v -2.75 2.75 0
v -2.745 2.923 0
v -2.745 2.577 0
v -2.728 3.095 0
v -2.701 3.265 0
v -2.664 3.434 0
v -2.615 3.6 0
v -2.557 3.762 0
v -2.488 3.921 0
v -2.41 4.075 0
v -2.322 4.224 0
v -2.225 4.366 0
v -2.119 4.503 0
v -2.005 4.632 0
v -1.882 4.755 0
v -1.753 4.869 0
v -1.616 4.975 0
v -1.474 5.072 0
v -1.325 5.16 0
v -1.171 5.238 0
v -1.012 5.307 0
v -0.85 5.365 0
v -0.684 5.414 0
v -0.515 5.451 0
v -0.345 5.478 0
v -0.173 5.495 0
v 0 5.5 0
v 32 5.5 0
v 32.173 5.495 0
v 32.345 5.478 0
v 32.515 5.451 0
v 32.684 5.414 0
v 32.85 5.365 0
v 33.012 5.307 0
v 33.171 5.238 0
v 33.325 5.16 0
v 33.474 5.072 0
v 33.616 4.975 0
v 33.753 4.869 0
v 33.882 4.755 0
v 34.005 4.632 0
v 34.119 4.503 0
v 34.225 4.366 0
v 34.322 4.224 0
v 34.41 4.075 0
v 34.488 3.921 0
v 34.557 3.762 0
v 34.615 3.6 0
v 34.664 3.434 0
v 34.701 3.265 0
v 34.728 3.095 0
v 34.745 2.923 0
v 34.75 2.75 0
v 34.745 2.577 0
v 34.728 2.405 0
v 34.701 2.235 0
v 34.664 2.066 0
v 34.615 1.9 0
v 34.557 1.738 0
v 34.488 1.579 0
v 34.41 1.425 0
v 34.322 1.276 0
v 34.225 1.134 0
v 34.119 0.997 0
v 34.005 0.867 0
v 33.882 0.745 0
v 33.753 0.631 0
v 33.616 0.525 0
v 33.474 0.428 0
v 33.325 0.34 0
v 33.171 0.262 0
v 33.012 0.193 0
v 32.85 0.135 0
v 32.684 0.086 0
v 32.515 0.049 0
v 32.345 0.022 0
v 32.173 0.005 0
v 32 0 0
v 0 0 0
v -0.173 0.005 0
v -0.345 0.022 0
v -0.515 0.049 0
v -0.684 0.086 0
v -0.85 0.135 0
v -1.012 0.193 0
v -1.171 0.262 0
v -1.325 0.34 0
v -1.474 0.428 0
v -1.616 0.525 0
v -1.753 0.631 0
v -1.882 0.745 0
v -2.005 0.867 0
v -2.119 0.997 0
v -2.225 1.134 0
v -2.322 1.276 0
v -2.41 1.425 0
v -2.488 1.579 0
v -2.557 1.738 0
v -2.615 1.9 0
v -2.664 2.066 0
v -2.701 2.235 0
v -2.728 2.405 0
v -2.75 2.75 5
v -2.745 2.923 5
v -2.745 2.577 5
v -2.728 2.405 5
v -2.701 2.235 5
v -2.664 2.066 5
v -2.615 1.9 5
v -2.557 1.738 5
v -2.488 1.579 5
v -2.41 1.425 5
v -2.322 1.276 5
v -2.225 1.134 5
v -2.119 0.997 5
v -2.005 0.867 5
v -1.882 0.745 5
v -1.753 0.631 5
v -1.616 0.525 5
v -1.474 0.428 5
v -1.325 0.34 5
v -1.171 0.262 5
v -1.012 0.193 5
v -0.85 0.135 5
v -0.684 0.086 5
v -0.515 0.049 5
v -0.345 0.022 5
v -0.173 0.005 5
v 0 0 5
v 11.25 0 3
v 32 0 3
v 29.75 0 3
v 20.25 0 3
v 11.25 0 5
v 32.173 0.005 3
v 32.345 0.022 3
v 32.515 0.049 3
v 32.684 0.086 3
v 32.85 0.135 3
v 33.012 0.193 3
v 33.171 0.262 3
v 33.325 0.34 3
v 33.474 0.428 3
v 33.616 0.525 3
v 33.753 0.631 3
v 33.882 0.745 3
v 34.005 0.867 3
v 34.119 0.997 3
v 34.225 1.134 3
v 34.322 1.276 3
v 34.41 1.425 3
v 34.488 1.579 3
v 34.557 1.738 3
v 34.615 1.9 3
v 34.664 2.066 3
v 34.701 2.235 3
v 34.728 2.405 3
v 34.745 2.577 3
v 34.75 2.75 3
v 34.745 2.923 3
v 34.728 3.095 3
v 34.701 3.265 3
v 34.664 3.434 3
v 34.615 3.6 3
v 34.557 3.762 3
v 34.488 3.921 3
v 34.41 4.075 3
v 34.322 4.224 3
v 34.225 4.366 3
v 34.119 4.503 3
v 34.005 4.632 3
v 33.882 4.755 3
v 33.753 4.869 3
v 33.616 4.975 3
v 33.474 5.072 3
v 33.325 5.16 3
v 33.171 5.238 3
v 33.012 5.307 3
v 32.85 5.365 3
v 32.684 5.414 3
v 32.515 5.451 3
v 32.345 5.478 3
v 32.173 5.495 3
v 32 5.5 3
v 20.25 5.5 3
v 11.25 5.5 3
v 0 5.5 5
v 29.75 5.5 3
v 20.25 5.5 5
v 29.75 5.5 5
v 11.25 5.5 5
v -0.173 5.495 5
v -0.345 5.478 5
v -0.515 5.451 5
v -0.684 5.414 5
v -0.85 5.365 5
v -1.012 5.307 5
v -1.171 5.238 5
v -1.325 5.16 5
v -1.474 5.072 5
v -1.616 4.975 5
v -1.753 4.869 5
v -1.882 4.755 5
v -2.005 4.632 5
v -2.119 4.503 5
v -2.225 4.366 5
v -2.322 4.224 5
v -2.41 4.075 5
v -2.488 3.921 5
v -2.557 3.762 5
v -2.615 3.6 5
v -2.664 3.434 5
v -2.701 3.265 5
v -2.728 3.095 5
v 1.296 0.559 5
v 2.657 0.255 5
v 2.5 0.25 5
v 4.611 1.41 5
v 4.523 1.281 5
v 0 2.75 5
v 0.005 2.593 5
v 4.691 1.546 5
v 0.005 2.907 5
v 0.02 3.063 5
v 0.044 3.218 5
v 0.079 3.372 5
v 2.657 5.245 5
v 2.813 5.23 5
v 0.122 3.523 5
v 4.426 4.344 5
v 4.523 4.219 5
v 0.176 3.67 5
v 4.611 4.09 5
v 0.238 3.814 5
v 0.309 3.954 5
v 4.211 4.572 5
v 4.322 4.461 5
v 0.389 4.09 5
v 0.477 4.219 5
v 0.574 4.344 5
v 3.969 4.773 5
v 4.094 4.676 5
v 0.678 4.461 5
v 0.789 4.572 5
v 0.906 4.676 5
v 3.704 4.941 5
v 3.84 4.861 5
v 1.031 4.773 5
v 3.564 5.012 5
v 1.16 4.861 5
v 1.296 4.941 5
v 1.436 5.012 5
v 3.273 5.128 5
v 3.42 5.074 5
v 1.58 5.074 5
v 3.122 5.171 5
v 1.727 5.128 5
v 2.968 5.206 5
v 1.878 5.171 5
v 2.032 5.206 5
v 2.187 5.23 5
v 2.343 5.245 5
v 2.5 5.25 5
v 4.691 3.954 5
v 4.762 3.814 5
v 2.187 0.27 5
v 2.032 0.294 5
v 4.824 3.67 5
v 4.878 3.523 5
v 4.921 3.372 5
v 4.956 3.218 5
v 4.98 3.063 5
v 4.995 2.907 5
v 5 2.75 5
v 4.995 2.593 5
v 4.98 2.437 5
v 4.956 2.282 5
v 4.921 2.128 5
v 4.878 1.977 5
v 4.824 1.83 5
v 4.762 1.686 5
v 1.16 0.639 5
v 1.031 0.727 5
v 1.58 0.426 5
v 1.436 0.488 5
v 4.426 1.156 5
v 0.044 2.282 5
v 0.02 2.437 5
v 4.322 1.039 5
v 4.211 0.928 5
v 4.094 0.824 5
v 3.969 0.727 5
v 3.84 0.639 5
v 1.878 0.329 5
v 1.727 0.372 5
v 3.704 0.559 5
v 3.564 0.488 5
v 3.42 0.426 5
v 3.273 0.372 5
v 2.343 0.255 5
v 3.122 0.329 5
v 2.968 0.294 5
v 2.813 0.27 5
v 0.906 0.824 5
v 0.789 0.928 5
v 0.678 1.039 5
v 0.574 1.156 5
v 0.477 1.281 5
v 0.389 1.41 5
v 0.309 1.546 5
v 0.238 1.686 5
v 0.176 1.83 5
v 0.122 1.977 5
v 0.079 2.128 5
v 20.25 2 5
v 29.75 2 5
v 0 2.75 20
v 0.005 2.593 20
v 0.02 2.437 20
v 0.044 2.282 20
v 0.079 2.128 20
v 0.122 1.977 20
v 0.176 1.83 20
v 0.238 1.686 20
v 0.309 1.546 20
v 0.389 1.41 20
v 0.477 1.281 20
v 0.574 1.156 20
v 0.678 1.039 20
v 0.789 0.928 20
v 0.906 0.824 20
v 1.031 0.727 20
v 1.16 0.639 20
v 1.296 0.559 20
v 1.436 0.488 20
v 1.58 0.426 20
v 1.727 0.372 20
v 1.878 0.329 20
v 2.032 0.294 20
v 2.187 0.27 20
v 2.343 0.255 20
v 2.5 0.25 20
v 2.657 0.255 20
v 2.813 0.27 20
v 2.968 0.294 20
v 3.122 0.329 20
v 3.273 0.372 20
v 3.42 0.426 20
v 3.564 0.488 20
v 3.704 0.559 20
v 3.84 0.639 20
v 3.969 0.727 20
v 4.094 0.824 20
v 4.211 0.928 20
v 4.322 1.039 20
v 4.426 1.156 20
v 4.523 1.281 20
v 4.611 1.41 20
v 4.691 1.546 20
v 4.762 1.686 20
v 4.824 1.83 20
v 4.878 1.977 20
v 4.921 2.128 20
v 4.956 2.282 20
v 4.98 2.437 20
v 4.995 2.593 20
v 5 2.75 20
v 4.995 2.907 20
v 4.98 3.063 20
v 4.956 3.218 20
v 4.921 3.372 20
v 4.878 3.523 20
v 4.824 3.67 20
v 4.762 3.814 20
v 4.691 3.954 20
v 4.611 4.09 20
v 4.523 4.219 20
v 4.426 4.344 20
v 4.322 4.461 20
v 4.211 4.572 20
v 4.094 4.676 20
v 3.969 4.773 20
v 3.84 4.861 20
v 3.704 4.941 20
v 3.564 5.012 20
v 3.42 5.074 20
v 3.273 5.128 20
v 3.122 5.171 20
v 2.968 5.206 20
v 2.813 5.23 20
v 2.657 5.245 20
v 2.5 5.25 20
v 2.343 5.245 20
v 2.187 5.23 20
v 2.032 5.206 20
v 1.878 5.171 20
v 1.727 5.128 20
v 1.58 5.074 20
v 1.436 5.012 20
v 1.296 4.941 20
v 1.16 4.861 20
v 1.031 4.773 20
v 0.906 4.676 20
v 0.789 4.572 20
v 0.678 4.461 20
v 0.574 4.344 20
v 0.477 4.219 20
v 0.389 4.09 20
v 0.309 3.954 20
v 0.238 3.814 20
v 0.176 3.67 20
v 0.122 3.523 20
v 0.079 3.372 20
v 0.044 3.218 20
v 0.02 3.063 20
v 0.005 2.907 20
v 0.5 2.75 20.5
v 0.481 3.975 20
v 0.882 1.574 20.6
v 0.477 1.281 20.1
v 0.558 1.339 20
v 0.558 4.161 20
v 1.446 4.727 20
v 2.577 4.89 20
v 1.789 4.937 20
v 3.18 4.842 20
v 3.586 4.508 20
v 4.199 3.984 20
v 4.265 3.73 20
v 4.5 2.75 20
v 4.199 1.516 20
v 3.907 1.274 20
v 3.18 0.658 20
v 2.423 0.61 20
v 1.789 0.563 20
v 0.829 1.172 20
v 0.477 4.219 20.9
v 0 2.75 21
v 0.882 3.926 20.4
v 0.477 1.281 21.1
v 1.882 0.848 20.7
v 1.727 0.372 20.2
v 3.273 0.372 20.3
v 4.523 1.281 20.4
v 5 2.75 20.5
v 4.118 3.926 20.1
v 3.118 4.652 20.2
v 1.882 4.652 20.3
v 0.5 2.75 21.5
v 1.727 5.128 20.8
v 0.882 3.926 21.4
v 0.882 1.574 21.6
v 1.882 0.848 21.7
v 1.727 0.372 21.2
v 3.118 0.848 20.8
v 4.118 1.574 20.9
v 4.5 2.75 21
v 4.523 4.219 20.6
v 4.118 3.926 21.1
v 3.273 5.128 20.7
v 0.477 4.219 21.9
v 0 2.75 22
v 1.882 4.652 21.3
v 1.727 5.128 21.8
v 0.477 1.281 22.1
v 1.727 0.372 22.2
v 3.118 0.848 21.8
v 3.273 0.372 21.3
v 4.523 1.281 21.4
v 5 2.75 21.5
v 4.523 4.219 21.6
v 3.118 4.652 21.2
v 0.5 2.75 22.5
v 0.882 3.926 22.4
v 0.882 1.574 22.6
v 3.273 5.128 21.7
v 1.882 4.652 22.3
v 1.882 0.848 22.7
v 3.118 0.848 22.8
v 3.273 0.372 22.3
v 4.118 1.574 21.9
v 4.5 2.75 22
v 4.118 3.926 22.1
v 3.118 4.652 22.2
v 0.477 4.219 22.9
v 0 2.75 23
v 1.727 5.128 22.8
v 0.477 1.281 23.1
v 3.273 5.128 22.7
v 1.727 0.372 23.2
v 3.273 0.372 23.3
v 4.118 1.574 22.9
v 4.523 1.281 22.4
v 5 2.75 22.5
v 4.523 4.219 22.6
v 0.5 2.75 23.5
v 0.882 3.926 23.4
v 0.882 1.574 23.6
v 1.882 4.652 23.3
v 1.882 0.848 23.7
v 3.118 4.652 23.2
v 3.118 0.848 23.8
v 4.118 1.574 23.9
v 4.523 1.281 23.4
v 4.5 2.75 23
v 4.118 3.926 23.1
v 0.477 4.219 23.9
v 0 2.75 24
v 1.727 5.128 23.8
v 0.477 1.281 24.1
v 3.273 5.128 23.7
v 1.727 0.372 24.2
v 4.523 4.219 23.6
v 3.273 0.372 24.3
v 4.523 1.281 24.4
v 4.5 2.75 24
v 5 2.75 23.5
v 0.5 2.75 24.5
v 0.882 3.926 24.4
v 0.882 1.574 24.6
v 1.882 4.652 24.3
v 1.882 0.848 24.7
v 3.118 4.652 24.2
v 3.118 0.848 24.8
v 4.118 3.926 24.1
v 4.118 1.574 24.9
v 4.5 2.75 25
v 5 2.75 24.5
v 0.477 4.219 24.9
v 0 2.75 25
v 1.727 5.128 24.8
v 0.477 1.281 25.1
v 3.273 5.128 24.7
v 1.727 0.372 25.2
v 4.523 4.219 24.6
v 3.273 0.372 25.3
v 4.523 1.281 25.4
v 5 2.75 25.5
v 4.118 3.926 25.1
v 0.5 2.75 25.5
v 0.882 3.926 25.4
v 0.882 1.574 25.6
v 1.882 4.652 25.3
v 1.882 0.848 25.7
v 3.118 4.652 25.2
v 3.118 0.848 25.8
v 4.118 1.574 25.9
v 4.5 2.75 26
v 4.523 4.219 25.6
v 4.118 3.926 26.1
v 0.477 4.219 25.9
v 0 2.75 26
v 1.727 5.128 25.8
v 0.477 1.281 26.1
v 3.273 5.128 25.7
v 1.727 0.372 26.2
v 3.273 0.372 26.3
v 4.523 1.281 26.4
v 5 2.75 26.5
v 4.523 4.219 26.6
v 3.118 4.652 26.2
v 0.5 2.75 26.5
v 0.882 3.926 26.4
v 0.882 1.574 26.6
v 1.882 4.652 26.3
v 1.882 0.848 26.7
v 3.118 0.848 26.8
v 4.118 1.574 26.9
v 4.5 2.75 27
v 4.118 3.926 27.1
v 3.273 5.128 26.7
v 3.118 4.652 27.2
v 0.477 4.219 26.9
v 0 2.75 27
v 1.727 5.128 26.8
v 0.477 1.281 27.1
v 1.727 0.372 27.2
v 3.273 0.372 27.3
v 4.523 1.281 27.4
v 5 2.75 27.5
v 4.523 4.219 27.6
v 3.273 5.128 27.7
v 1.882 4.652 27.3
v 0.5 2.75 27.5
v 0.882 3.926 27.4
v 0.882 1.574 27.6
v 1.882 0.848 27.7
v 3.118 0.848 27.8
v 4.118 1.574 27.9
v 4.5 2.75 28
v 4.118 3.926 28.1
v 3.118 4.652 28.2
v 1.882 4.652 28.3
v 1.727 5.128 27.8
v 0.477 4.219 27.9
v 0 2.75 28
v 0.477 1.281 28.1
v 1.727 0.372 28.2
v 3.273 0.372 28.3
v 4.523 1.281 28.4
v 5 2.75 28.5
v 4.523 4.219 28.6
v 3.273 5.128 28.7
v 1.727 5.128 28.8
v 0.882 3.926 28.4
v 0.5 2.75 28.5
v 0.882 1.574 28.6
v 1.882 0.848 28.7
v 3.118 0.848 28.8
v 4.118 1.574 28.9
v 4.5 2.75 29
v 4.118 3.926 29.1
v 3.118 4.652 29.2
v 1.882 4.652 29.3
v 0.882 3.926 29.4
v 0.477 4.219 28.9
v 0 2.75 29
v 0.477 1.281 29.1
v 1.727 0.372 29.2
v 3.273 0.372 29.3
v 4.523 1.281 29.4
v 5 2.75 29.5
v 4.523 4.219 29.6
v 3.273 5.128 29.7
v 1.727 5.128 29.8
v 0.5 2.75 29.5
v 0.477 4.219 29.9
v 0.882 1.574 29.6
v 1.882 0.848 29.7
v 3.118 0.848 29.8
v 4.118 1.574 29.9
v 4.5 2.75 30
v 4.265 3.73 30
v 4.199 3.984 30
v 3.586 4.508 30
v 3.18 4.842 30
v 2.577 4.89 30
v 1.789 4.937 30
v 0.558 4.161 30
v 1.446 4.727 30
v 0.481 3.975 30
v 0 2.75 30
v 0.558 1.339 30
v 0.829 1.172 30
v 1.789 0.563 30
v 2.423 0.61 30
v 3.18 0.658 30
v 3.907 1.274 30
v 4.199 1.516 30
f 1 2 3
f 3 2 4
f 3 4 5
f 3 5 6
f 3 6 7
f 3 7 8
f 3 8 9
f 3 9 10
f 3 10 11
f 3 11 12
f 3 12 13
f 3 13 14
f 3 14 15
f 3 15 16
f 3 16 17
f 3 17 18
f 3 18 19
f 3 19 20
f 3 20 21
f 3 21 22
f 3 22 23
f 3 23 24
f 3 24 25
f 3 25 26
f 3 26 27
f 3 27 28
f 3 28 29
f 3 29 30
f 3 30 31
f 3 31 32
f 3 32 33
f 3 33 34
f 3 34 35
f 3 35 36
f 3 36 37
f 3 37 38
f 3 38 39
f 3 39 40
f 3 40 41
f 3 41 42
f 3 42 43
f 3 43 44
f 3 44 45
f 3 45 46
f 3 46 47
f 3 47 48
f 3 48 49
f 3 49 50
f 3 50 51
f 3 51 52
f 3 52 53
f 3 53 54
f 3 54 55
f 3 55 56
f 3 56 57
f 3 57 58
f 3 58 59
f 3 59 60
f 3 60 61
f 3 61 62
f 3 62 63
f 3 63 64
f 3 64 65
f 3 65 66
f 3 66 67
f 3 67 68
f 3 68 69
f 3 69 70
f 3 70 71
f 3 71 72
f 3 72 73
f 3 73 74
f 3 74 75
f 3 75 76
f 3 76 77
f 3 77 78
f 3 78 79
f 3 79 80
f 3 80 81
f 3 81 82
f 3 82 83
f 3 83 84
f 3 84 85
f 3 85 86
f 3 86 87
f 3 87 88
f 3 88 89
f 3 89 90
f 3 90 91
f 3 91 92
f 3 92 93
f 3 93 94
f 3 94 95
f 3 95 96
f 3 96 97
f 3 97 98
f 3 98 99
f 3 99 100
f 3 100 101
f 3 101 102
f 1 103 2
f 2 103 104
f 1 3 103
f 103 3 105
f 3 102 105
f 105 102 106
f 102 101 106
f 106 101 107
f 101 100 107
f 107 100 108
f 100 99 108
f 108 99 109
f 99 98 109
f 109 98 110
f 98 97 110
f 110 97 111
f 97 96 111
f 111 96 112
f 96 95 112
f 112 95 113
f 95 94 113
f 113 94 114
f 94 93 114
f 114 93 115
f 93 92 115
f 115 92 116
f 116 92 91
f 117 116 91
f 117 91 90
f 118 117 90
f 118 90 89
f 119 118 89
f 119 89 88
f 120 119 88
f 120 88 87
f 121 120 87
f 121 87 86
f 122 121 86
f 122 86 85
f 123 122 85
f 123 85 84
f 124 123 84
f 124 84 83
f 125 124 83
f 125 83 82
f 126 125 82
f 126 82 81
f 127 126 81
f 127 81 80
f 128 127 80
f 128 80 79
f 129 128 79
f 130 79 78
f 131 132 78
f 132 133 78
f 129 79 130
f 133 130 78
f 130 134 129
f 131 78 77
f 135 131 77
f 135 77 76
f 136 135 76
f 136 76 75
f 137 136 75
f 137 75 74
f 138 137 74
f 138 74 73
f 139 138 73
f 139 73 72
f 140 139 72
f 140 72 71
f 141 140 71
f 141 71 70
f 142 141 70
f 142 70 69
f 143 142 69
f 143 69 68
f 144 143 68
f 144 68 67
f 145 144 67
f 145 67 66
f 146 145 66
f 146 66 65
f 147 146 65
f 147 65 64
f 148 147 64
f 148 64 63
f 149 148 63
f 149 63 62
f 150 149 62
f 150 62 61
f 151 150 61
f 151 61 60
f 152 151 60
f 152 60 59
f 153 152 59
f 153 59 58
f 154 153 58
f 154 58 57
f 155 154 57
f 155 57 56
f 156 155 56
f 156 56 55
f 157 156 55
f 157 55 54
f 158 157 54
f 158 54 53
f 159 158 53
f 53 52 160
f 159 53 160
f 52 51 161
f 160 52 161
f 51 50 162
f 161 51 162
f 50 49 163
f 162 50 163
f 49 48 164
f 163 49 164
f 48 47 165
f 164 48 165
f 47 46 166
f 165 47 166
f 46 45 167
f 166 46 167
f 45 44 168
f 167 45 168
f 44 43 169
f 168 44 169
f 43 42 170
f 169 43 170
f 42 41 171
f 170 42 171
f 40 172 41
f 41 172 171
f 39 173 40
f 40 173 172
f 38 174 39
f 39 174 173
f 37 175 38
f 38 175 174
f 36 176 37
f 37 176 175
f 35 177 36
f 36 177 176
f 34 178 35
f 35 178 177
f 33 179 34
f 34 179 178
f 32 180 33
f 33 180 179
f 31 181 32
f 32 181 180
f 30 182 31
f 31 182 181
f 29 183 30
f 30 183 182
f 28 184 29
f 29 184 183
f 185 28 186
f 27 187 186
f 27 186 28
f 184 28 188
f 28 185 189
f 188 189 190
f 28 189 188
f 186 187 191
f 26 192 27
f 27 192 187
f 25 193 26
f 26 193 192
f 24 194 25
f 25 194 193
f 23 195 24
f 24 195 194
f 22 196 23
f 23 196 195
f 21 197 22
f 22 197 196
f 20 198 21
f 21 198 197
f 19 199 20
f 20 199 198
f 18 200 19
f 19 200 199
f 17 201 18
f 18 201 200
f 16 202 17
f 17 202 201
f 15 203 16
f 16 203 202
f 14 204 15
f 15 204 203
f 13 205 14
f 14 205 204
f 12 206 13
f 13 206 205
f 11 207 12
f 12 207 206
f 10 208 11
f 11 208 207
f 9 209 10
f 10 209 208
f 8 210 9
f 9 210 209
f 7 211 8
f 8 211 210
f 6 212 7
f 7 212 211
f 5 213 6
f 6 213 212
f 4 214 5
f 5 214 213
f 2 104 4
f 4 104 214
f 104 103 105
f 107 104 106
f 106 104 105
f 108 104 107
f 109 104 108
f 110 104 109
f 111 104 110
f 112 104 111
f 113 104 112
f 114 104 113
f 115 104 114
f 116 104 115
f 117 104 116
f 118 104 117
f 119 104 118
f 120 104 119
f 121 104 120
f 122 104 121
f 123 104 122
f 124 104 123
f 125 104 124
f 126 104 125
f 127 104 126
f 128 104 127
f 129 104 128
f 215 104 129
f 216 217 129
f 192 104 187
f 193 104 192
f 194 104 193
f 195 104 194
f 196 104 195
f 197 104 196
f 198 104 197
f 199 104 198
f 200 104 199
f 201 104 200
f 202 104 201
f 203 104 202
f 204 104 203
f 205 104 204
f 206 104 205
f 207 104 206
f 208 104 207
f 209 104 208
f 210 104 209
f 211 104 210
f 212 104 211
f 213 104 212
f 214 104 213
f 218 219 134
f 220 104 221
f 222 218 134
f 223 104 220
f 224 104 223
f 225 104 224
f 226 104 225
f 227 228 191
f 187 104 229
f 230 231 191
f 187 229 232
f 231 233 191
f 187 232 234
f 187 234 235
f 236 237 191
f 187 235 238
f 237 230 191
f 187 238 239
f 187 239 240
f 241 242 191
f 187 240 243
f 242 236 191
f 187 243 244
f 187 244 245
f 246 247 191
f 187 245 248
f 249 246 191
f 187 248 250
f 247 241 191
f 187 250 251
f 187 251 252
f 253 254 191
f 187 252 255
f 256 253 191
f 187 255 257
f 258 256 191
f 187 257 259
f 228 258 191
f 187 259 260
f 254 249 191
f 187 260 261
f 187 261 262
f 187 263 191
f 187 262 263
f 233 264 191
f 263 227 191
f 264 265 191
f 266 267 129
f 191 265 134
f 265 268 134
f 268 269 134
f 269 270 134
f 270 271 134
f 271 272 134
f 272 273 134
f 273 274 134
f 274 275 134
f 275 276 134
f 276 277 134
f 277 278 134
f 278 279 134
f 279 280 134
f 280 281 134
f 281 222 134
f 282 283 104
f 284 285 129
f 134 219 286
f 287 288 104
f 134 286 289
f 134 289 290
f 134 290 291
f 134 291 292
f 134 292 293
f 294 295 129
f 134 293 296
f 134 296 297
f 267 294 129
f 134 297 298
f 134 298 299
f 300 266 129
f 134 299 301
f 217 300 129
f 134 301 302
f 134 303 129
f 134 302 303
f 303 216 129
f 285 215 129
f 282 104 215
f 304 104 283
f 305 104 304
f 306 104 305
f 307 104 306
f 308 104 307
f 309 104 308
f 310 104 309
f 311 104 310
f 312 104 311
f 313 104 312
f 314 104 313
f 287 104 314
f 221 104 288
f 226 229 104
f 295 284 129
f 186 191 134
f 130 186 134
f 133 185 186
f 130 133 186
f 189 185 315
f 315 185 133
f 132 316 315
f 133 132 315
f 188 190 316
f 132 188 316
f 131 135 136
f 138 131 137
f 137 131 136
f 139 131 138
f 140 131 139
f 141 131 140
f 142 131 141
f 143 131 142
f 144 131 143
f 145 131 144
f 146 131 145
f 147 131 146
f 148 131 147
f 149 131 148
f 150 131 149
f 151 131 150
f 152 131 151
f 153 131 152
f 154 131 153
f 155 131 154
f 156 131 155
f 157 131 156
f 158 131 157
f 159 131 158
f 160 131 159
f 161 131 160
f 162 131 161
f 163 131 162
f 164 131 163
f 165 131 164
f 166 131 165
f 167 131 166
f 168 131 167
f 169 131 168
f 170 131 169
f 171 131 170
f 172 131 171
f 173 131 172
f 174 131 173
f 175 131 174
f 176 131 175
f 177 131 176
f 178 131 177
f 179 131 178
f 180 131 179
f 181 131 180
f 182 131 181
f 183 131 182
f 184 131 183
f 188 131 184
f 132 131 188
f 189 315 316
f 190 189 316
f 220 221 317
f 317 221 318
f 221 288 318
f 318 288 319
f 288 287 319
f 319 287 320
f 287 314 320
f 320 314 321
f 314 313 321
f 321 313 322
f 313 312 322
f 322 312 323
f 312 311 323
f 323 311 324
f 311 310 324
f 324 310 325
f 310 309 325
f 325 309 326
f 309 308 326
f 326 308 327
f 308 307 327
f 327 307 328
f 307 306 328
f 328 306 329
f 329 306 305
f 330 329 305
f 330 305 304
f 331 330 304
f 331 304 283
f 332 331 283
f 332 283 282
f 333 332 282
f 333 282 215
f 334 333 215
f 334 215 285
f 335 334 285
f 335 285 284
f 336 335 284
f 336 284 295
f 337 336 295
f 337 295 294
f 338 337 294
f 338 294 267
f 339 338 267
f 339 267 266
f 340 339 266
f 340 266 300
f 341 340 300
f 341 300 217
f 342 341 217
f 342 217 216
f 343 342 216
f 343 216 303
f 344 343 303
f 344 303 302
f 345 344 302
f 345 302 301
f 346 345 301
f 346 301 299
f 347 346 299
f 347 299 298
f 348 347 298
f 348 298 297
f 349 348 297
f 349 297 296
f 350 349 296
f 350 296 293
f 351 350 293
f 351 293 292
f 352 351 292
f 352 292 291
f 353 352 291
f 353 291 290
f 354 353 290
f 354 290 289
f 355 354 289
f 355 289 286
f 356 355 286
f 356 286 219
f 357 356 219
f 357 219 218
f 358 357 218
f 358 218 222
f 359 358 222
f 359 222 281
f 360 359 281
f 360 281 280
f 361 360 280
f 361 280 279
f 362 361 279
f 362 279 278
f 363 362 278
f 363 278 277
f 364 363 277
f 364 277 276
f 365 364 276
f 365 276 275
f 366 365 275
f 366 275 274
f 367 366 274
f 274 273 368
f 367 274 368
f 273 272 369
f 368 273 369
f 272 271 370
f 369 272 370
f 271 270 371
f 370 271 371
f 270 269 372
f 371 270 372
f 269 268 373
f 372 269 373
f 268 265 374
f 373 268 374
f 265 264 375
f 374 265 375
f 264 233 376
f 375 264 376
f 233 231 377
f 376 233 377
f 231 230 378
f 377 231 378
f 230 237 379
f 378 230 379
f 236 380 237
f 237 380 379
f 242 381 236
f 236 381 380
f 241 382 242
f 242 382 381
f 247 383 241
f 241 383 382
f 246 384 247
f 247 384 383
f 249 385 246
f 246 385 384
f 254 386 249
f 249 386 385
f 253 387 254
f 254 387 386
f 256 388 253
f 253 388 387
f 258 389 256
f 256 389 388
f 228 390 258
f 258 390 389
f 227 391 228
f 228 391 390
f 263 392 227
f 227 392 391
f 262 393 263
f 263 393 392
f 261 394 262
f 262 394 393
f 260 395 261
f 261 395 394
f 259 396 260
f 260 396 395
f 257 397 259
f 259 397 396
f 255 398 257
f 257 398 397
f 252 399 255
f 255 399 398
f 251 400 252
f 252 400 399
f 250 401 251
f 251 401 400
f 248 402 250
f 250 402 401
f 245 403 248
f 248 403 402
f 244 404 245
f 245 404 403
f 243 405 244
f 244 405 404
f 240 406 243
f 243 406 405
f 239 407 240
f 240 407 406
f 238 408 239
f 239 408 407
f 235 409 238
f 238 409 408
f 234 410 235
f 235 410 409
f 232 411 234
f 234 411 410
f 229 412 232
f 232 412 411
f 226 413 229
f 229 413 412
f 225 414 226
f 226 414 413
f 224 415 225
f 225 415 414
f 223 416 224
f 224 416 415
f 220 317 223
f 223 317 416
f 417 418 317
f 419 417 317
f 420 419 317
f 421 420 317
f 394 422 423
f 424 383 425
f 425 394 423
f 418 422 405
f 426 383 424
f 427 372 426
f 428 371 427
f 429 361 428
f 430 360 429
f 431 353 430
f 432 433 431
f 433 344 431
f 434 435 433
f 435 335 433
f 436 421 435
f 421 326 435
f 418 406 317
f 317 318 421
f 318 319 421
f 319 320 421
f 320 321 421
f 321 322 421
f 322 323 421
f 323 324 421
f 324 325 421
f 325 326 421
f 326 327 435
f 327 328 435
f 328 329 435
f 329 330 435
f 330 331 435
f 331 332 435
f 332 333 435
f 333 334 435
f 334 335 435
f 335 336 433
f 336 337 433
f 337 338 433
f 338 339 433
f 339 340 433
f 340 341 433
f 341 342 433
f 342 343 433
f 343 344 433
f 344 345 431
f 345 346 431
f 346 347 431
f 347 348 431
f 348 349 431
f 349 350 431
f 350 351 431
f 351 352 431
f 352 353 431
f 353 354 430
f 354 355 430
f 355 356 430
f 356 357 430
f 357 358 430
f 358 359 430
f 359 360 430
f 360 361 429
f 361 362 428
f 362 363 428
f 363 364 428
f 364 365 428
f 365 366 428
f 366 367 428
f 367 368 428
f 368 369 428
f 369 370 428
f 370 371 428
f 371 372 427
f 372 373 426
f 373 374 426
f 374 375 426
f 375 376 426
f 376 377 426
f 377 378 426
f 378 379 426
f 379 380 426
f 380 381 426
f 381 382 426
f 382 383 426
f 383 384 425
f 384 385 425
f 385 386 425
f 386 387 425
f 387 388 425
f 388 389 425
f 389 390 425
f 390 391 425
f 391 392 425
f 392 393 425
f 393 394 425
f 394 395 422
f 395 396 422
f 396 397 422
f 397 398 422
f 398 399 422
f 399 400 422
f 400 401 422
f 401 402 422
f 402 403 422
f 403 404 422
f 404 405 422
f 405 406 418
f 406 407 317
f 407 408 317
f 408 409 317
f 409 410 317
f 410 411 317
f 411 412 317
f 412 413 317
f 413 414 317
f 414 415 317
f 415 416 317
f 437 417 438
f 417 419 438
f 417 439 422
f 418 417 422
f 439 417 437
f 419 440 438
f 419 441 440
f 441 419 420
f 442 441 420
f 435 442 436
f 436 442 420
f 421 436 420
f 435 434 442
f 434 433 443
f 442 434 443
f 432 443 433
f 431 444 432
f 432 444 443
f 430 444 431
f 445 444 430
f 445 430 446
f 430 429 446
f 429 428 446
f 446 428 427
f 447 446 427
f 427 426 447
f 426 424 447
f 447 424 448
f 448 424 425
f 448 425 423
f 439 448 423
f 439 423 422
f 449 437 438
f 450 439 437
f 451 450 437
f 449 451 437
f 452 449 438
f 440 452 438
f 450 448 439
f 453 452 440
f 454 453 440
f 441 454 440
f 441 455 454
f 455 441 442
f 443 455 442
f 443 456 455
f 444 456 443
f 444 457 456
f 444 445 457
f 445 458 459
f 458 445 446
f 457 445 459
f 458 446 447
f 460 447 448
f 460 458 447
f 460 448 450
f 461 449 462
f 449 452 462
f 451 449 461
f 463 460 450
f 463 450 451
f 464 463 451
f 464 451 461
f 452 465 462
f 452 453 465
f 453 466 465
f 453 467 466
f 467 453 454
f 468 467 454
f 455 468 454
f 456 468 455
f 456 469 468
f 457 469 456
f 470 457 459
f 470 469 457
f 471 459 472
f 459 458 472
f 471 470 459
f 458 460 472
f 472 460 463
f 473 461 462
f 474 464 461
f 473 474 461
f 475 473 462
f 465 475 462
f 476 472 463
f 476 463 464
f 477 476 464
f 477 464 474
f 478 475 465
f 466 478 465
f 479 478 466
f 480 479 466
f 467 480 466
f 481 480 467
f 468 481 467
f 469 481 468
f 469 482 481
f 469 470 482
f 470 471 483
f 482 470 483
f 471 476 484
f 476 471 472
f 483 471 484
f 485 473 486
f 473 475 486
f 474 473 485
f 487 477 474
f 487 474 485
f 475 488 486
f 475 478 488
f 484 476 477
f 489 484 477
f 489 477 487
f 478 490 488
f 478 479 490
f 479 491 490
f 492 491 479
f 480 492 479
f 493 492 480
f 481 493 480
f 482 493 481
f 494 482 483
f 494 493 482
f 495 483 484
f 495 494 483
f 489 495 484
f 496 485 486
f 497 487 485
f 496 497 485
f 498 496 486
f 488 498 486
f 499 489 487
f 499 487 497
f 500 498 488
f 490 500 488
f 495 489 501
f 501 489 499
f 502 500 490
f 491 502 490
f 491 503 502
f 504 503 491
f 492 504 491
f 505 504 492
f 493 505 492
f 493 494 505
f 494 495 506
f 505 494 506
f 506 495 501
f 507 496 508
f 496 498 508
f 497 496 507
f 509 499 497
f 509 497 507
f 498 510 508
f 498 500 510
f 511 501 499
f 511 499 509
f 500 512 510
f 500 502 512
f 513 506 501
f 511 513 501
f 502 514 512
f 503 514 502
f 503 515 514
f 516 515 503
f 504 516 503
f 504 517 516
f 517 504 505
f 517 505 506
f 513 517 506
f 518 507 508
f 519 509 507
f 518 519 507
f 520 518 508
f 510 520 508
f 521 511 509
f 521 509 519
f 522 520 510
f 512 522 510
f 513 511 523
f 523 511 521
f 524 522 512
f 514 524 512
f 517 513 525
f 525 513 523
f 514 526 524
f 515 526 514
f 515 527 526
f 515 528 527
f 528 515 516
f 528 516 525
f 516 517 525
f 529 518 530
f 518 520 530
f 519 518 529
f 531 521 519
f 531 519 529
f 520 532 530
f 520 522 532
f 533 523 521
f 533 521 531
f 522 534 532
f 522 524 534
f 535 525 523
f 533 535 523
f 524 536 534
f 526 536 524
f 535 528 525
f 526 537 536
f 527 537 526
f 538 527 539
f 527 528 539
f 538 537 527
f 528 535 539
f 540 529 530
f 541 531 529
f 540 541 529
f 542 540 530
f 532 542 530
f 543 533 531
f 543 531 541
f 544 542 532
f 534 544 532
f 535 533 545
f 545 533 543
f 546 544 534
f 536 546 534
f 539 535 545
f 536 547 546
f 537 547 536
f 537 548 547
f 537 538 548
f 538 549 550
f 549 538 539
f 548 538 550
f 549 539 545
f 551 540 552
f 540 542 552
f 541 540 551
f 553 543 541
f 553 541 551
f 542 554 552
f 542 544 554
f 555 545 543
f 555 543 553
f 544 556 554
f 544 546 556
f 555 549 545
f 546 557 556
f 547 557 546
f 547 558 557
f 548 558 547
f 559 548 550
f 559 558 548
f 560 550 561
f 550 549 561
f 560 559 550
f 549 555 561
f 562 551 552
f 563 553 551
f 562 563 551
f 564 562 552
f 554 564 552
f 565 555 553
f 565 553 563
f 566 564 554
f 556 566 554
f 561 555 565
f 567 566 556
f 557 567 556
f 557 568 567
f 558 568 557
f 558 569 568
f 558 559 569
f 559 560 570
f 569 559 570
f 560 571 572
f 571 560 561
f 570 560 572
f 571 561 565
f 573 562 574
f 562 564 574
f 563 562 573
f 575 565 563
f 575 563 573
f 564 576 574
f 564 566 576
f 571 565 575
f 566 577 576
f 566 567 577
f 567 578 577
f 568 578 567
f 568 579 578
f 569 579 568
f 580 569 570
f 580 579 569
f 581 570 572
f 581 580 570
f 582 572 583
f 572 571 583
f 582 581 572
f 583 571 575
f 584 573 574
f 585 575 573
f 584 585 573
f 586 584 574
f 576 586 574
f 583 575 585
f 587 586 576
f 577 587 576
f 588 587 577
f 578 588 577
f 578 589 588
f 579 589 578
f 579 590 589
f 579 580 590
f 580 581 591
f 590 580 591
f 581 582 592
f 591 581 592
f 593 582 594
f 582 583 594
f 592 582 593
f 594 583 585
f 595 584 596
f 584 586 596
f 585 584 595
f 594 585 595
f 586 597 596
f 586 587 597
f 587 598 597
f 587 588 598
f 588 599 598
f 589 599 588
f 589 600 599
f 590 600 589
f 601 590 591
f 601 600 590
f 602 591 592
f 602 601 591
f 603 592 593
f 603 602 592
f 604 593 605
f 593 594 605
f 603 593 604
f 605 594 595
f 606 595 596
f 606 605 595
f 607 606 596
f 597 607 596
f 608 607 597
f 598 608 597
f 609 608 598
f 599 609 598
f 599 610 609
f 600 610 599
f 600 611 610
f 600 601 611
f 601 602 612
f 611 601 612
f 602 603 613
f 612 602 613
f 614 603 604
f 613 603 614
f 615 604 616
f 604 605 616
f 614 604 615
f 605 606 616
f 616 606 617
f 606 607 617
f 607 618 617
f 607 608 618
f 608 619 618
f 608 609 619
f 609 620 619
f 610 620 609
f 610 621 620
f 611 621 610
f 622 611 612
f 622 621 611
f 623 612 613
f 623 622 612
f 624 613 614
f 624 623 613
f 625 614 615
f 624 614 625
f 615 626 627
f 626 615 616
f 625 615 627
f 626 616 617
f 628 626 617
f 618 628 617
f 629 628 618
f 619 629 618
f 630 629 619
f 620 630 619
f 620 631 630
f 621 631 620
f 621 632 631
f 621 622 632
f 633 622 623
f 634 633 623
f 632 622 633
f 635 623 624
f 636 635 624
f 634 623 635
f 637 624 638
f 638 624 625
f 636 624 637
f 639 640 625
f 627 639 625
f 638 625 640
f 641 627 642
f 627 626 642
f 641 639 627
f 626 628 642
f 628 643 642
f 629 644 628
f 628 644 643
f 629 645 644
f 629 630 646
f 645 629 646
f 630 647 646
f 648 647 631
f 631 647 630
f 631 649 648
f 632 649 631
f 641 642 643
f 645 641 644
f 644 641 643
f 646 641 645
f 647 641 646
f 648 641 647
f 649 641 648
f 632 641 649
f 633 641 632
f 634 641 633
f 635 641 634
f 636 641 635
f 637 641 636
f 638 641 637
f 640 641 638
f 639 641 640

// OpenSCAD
// file: polyScrewThread.scad
/*
 *    polyScrewThread.scad    by aubenc @ Thingiverse
 *
 * This script contains the library modules that can be used to generate
 * threaded rods, screws and nuts.
 *
 * http://www.thingiverse.com/thing:8796
 *
 * CC Public Domain
 */

module screw_thread(od,st,lf0,lt,rs,cs)
{
    or=od/2;
    ir=or-st/2*cos(lf0)/sin(lf0);
    pf=2*PI*or;
    sn=floor(pf/rs);
    lfxy=360/sn;
    ttn=round(lt/st)+1;
    zt=st/sn;

    intersection()
    {
        if (cs >= -1)
        {
           # thread_shape(cs,lt,or,ir,sn,st);
        }

        full_thread(ttn,st,sn,zt,lfxy,or,ir);
    }
}

module hex_nut(df,hg,sth,clf,cod,crs)
{

    difference()
    {
        hex_head(hg,df);

        hex_countersink_ends(sth/2,cod,clf,crs,hg);

        screw_thread(cod,sth,clf,hg,crs,-2);
    }
}

module hex_screw(od,st,lf0,lt,rs,cs,df,hg,ntl,ntd)
{
    ntr=od/2-(st/2+0.1)*cos(lf0)/sin(lf0);

    union()
    {
        hex_head(hg,df);

        translate([0,0,hg])
        if ( ntl == 0 )
        {
            cylinder(h=0.01, r=ntr, center=true);
        }
        else
        {
            if ( ntd == -1 )
            {
                cylinder(h=ntl+0.01, r=ntr, $fn=floor(od*PI/rs), center=false);
            }
            else if ( ntd == 0 )
            {
                union()
                {
                    cylinder(h=ntl-st/2,
                             r=od/2, $fn=floor(od*PI/rs), center=false);

                    translate([0,0,ntl-st/2])
                    cylinder(h=st/2,
                             r1=od/2, r2=ntr, 
                             $fn=floor(od*PI/rs), center=false);
                }
            }
            else
            {
                cylinder(h=ntl, r=ntd/2, $fn=ntd*PI/rs, center=false);
            }
        }

        translate([0,0,ntl+hg]) screw_thread(od,st,lf0,lt,rs,cs);
    }
}

module thread_shape(cs,lt,or,ir,sn,st)
{
    if ( cs == 0 )
    {
        cylinder(h=lt, r=or, $fn=sn, center=false);
    }
    else
    {
        union()
        {
            translate([0,0,st/2])
              cylinder(h=lt-st+0.005, r=or, $fn=sn, center=false);

            if ( cs == -1 || cs == 2 )
            {
                cylinder(h=st/2, r1=ir, r2=or, $fn=sn, center=false);
            }
            else
            {
                cylinder(h=st/2, r=or, $fn=sn, center=false);
            }

            translate([0,0,lt-st/2])
            if ( cs == 1 || cs == 2 )
            {
                  cylinder(h=st/2, r1=or, r2=ir, $fn=sn, center=false);
            }
            else
            {
                cylinder(h=st/2, r=or, $fn=sn, center=false);
            }
        }
    }
}

module full_thread(ttn,st,sn,zt,lfxy,or,ir)
{
    for(i=[0:ttn-1])
    {
        for(j=[0:sn-1])
        {
            polyhedron(
                  points=[
                          [0,                  0,                  i*st-st            ],
                          [ir*cos((j+1)*lfxy), ir*sin((j+1)*lfxy), i*st+(j+1)*zt-st   ],
                          [ir*cos(j*lfxy),     ir*sin(j*lfxy),     i*st+j*zt-st       ],
                          [or*cos((j+1)*lfxy), or*sin((j+1)*lfxy), i*st+(j+1)*zt-st/2 ],
                          [or*cos(j*lfxy),     or*sin(j*lfxy),     i*st+j*zt-st/2     ],
                          [0,                  0,                  i*st+st            ],
                          [ir*cos((j+1)*lfxy), ir*sin((j+1)*lfxy), i*st+(j+1)*zt      ],
                          [ir*cos(j*lfxy),     ir*sin(j*lfxy),     i*st+j*zt          ]
                         ],
               triangles=[
                          [0,1,2],
                          [5,6,3],[5,3,0],[0,3,1],
                          [3,4,1],[1,4,2],
                          [3,6,4],[4,6,7],
                          [0,2,4],[0,4,5],[5,4,7],
                          [5,7,6]
                         ],
               convexity=5);
        }
    }
}

module hex_head(hg,df)
{
    cylinder(h=hg, r=df/2/sin(60), $fn=6, center=false);
}

module hex_countersink_ends(chg,cod,clf,crs,hg)
{
    translate([0,0,-0.1])
    cylinder(h=chg+0.01, 
             r1=cod/2, 
             r2=cod/2-(chg+0.1)*cos(clf)/sin(clf),
             $fn=floor(cod*PI/crs), center=false);

    translate([0,0,hg-chg+0.1])
    cylinder(h=chg+0.01, 
             r1=cod/2-(chg+0.1)*cos(clf)/sin(clf),
             r2=cod/2, 
             $fn=floor(cod*PI/crs), center=false);
}
// main file
//All mesurements are in mm
include <polyScrewThread.scad>
PI=3.141592;

$fn=100;
flat_height=5;
flat_width=5.5;
flat_lenght=37-flat_height;
flat_tapper_height=2;
flat_tapper_offset_mag_side=flat_height;
flat_tapper_offset_trigger_side=14;
flat_tapper_offset_trigger_side_lenght=9;
thread_height=10;

bolt_lenght=30;
bolt_diam=5;
bolt_offset=5;
module flat(){
	difference(){
		union(){
			translate([0,flat_width/2,0])cylinder( r=flat_width/2 ,h=flat_height);
			cube([flat_lenght,flat_width,flat_height]);
			translate([flat_lenght,flat_width/2,0])cylinder( r=flat_width/2 ,h=flat_height);
		}
		translate([flat_lenght-flat_tapper_offset_mag_side+(flat_width/2),0,flat_height-flat_tapper_height])cube([flat_tapper_offset_mag_side,flat_width,flat_tapper_height]);
		translate([flat_tapper_offset_trigger_side-(flat_width/2),0,flat_height-flat_tapper_height])cube([flat_tapper_offset_trigger_side_lenght,flat_width,flat_tapper_height]);
		translate([flat_tapper_offset_trigger_side-(flat_width/2)+flat_tapper_offset_trigger_side_lenght,0,flat_height-flat_tapper_height])rotate([45,0,0])cube([ (flat_lenght+(flat_height*2))-flat_tapper_offset_trigger_side-flat_tapper_offset_trigger_side_lenght,flat_width,flat_height]);
		
	}
}


flat();
translate([bolt_offset-(flat_height/2),flat_width/2,bolt_lenght-thread_height])screw_thread(bolt_diam,   1,   45,    thread_height,    PI/2,    0);
translate([bolt_offset-(flat_height/2),flat_width/2,0])cylinder( r=bolt_diam/2 ,h=bolt_lenght-thread_height);
